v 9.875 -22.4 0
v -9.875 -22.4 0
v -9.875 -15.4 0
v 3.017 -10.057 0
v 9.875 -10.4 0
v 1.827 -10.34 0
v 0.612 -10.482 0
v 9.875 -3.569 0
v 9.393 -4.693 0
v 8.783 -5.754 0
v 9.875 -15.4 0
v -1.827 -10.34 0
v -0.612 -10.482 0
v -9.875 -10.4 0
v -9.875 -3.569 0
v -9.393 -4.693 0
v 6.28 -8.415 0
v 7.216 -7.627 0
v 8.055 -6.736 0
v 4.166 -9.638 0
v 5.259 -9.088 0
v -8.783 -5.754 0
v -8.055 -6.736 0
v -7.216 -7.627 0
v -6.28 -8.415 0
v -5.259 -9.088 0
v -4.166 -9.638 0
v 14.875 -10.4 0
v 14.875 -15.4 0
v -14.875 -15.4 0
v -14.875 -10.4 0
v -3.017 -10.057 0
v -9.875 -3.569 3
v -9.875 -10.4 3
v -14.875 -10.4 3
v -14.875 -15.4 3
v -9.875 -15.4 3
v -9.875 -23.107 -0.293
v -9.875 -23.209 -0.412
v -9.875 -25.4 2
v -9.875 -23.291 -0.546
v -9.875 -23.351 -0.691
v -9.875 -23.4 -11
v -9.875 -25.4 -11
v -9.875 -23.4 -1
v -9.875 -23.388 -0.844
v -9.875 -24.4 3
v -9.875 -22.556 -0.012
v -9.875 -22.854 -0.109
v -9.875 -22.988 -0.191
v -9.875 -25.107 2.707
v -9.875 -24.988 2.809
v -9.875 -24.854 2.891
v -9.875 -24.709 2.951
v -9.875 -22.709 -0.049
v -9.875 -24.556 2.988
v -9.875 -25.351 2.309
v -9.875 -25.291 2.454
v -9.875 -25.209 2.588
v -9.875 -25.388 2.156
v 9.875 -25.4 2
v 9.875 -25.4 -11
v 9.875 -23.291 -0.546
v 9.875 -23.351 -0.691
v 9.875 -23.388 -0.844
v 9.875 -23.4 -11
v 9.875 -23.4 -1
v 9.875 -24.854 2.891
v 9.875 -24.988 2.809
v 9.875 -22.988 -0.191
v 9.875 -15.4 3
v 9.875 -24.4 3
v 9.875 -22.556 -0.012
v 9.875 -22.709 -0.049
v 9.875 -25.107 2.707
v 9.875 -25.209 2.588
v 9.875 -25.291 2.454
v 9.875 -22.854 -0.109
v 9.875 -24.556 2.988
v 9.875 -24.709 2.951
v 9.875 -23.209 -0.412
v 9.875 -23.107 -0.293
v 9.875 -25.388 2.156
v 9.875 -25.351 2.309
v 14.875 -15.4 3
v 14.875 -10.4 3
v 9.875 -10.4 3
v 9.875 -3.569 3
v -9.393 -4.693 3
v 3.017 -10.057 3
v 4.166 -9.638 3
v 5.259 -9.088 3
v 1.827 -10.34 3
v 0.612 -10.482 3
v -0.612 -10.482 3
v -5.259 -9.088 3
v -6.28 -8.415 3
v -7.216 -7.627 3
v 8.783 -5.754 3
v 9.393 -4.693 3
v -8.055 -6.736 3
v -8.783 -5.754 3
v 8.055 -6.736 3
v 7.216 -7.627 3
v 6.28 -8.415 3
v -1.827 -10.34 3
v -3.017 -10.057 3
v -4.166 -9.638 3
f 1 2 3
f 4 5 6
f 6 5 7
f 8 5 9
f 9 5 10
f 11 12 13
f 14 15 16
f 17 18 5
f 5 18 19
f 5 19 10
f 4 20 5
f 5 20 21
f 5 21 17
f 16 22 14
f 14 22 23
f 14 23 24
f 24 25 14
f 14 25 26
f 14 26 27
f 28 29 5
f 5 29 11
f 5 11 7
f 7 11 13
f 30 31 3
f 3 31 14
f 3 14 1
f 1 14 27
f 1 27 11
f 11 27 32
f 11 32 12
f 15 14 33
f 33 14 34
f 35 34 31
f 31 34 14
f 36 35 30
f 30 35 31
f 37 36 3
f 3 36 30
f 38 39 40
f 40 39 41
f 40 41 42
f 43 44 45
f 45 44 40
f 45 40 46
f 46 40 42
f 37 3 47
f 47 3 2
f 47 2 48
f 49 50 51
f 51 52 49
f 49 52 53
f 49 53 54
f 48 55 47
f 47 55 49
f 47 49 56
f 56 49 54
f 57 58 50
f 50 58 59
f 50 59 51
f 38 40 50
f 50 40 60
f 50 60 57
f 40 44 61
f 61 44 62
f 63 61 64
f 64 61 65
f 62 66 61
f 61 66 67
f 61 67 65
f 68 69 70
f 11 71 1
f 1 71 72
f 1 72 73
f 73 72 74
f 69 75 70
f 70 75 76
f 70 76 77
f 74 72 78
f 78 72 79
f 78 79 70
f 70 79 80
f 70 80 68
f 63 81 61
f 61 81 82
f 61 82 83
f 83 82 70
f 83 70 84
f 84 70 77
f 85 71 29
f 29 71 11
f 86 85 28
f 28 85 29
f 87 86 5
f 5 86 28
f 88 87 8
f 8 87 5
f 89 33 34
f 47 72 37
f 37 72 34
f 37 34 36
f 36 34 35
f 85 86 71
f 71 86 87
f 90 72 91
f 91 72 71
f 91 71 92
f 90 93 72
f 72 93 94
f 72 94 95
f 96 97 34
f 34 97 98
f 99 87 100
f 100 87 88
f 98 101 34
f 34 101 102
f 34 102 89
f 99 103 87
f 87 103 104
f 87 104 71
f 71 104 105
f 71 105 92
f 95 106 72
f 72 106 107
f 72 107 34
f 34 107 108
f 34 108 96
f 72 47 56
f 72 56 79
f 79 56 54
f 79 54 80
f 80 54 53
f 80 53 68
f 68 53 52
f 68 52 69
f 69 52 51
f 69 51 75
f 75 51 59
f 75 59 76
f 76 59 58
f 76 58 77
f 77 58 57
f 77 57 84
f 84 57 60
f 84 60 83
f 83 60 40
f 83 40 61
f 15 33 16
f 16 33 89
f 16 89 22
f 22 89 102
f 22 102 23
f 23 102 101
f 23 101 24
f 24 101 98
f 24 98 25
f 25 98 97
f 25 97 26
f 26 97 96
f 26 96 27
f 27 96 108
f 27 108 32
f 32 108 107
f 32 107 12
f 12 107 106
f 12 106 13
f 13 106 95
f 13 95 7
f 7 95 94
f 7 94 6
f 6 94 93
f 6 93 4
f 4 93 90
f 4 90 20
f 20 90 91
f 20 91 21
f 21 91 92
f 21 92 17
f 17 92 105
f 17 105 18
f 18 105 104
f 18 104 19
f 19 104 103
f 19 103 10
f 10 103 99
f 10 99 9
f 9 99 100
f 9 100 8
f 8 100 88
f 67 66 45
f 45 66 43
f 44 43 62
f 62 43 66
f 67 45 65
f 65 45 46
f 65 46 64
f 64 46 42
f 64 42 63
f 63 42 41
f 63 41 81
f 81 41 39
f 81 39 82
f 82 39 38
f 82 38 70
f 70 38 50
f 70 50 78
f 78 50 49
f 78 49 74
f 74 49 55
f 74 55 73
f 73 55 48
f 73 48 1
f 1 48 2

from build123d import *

# Parameters (mm, degrees)
CROQUIS1_R              = 9.875
CROQUIS1_W              = 5
CROQUIS1_H              = 5
SALIENTE_EXTRUIR1_DEPTH = 3
REDONDEO1_R             = 1
CROQUIS2_R              = 10.5
CORTAR_EXTRUIR1_DEPTH   = 10
CROQUIS3_W              = 19.75
CROQUIS3_H              = 2
SALIENTE_EXTRUIR2_DEPTH = 11
REDONDEO2_R             = 1


with BuildPart() as part:
    # Croquis1 → Saliente-Extruir1 (new body)
    with BuildSketch(Plane.XY):
        Circle(CROQUIS1_R)
        with BuildLine():
            ThreePointArc((9.875, 0), (0, -9.875), (-9.875, 0))
            Line((-9.875, 0), (-9.875, -10.4))
            Line((-9.875, -10.4), (-9.875, -15.4))
            Line((-9.875, -15.4), (-9.875, -25.4))
            Line((-9.875, -25.4), (9.875, -25.4))
            Line((9.875, -25.4), (9.875, -15.4))
            Line((9.875, -15.4), (9.875, -10.4))
            Line((9.875, -10.4), (9.875, 0))
        make_face()
        with Locations((12.375, -12.9)):
            Rectangle(CROQUIS1_W, CROQUIS1_H)
        with Locations((-12.375, -12.9)):
            Rectangle(CROQUIS1_W, CROQUIS1_H)
    extrude(amount=SALIENTE_EXTRUIR1_DEPTH)

    # Redondeo1
    redondeo1_edges = [part.edges().sort_by_distance(p)[0] for p in [
        (0, -25.4, 3),
    ]]
    fillet(redondeo1_edges, radius=REDONDEO1_R)

    # Croquis2 → Cortar-Extruir1 (cut)
    with BuildSketch(Plane.XY.offset(3)):
        Circle(CROQUIS2_R)
    extrude(amount=-CORTAR_EXTRUIR1_DEPTH, mode=Mode.SUBTRACT)

    # Croquis3 → Saliente-Extruir2 (add)
    with BuildSketch(Plane(origin=(0, 0, 0), x_dir=(-1, 0, 0), z_dir=(0, 0, -1))):
        with Locations((0, -24.4)):
            Rectangle(CROQUIS3_W, CROQUIS3_H)
    extrude(amount=SALIENTE_EXTRUIR2_DEPTH)

    # Redondeo2
    redondeo2_edges = [part.edges().sort_by_distance(p)[0] for p in [
        (0, -23.4, 0),
    ]]
    fillet(redondeo2_edges, radius=REDONDEO2_R)


solid = part.part
